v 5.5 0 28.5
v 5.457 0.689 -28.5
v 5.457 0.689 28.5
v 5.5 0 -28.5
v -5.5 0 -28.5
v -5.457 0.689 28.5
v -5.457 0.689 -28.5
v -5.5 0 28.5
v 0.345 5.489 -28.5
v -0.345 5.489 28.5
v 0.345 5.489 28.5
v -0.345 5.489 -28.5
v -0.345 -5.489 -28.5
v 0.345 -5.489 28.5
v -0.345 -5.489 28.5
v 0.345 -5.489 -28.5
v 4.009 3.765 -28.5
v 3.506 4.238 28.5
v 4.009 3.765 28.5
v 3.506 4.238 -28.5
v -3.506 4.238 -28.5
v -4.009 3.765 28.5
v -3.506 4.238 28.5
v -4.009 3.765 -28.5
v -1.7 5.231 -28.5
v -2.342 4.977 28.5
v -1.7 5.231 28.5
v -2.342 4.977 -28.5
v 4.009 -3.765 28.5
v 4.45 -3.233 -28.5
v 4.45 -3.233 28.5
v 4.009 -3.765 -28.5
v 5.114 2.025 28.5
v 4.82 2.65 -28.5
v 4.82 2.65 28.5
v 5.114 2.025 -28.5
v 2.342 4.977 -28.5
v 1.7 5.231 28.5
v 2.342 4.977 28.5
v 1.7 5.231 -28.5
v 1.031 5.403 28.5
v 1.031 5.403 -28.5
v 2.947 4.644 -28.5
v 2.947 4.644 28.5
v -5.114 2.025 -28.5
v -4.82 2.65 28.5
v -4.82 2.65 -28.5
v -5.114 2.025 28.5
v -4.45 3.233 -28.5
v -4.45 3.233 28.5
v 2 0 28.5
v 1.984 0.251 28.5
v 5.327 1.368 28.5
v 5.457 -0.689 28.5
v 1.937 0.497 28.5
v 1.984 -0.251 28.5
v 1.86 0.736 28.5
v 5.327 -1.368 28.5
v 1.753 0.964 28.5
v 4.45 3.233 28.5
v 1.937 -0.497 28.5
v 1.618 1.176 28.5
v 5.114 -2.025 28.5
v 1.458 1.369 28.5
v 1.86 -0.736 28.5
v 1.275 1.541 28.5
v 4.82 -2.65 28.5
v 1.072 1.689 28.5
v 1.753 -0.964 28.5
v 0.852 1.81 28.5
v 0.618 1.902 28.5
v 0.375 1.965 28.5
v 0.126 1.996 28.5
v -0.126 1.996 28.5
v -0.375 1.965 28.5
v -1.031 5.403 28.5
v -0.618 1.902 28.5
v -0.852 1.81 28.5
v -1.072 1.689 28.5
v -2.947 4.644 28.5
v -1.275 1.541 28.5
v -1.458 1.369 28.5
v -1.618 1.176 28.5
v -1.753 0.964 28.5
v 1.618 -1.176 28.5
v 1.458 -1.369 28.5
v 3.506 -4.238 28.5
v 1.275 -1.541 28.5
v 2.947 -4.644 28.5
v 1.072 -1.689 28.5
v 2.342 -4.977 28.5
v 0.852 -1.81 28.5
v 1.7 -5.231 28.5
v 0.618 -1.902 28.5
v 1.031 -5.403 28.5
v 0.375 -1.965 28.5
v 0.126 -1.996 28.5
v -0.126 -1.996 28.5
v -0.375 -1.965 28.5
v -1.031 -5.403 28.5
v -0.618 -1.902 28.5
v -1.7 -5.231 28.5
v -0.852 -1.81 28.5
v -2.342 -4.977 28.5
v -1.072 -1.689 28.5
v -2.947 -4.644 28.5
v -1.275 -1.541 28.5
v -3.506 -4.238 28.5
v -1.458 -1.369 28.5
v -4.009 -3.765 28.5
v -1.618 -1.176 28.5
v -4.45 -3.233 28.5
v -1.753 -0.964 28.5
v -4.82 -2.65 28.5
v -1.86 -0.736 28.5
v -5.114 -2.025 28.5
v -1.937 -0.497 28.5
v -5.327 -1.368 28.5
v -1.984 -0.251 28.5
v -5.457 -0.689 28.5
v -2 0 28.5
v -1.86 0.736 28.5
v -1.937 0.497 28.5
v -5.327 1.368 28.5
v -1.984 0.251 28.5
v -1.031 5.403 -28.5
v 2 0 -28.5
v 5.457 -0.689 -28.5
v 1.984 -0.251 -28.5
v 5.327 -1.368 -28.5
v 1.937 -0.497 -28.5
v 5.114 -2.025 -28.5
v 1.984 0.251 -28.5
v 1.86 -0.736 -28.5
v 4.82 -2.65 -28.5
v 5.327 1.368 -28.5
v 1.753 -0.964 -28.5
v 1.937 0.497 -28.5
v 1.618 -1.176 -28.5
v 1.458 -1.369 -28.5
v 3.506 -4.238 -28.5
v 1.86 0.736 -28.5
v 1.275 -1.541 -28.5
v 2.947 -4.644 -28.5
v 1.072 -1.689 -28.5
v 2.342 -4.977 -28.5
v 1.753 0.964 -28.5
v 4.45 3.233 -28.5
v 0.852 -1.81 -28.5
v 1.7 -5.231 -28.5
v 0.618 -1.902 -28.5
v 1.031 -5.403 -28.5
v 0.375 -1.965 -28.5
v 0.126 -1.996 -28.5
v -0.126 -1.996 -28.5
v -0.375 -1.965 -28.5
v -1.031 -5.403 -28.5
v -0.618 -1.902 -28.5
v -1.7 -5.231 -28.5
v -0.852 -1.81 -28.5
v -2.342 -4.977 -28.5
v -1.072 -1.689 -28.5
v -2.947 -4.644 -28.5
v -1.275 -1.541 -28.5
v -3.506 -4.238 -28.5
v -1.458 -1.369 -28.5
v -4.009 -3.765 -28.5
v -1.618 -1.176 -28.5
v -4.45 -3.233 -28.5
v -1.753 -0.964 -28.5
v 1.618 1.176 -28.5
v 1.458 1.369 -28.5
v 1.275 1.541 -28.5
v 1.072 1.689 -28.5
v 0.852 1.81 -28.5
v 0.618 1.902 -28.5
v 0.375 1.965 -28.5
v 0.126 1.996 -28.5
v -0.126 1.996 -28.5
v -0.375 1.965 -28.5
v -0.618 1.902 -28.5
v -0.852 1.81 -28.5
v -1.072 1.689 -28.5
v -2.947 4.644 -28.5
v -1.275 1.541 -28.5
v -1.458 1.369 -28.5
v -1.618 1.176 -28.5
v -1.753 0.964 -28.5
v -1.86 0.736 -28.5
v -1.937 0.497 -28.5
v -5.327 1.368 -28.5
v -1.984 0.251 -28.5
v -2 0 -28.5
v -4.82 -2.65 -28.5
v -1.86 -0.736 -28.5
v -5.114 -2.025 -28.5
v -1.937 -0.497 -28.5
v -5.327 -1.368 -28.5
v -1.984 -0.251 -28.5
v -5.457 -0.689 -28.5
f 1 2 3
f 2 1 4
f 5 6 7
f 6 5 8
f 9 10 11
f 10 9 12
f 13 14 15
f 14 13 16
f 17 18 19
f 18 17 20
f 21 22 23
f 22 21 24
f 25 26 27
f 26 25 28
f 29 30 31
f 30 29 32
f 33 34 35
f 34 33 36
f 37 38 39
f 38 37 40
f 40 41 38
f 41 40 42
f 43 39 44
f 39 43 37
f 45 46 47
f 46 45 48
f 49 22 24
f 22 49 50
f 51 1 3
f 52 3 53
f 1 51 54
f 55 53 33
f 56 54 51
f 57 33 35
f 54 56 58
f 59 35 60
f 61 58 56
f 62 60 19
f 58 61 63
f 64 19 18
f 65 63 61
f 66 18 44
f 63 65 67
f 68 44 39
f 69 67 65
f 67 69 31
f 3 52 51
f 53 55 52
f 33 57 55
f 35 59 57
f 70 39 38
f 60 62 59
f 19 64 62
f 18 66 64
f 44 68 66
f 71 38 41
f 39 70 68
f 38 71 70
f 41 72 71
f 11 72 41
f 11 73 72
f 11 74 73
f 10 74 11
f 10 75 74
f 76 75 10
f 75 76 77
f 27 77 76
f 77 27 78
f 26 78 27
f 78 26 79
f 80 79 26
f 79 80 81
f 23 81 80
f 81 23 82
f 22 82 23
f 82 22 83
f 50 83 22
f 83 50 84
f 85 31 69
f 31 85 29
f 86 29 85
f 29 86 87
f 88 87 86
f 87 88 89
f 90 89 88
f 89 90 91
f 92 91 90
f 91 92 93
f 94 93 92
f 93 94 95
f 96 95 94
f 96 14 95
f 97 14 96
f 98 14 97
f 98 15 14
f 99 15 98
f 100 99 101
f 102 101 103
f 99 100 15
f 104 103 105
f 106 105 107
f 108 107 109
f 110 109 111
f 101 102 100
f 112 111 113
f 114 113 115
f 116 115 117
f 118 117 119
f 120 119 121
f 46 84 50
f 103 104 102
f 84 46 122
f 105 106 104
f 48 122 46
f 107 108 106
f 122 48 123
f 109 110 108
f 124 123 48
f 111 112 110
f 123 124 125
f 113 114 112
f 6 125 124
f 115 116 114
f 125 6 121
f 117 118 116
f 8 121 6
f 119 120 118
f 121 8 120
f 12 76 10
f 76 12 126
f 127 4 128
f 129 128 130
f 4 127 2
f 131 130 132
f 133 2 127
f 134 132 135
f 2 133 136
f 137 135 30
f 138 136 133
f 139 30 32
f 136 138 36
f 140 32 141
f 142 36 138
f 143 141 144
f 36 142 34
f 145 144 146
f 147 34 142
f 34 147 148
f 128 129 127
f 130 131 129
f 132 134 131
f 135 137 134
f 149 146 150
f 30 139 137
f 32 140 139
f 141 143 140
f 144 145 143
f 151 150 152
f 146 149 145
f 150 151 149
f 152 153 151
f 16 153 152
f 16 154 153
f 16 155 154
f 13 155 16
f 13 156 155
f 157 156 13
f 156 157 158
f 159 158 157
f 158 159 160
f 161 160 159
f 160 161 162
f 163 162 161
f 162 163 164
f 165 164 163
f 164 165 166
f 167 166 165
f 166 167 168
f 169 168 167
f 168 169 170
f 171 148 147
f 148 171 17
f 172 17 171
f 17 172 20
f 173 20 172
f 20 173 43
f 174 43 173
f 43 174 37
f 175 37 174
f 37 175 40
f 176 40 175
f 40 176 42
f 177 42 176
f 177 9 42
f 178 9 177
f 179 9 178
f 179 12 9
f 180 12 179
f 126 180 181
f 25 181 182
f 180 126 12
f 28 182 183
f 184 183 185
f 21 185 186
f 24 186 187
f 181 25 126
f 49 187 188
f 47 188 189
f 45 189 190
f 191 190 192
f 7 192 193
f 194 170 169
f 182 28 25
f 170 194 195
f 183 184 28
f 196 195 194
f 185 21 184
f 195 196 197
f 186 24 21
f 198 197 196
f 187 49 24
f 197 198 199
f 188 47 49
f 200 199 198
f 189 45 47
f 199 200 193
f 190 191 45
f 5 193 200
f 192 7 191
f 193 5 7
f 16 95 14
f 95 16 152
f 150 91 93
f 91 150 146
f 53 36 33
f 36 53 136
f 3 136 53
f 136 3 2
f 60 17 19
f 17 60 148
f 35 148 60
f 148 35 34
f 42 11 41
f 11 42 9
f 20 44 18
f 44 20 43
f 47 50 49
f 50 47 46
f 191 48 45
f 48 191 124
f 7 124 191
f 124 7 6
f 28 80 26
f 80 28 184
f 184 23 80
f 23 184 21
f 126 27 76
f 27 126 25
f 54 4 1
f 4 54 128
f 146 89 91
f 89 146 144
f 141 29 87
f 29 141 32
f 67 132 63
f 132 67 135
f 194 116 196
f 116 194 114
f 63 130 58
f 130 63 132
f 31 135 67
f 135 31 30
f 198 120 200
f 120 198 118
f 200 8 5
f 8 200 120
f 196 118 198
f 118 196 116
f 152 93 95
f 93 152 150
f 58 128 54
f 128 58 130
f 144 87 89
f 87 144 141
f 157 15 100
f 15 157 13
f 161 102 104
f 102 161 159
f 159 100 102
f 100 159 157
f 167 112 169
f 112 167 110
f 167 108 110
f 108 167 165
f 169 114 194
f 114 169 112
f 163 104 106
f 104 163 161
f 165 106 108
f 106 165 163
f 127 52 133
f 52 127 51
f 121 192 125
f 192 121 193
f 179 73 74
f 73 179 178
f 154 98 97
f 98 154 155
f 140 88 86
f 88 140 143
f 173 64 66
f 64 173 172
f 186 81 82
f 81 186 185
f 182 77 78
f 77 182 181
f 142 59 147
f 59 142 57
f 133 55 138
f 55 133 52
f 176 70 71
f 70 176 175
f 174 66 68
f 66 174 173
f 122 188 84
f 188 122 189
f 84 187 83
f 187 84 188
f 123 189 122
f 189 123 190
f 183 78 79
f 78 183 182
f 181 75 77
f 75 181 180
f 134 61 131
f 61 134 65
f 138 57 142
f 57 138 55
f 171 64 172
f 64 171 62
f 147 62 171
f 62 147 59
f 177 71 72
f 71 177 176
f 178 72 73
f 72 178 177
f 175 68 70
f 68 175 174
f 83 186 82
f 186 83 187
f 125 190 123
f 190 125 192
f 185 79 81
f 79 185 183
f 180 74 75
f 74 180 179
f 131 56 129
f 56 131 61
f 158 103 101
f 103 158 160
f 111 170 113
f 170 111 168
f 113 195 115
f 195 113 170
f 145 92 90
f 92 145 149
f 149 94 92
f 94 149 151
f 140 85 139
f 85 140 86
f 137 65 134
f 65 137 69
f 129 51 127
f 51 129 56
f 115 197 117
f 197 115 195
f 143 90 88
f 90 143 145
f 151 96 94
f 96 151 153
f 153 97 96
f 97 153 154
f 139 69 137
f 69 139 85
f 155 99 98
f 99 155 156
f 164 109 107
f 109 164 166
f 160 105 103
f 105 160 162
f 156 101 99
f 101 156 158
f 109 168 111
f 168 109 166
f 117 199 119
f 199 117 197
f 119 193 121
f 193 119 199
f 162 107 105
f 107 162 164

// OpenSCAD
$fn = 50;


difference() {
	union() {
		translate(v = [0, 0, -28.5000000000]) {
			cylinder(h = 57, r = 5.5000000000);
		}
	}
	union() {
		translate(v = [0, 0, -100.0000000000]) {
			cylinder(h = 200, r = 2);
		}
	}
}
